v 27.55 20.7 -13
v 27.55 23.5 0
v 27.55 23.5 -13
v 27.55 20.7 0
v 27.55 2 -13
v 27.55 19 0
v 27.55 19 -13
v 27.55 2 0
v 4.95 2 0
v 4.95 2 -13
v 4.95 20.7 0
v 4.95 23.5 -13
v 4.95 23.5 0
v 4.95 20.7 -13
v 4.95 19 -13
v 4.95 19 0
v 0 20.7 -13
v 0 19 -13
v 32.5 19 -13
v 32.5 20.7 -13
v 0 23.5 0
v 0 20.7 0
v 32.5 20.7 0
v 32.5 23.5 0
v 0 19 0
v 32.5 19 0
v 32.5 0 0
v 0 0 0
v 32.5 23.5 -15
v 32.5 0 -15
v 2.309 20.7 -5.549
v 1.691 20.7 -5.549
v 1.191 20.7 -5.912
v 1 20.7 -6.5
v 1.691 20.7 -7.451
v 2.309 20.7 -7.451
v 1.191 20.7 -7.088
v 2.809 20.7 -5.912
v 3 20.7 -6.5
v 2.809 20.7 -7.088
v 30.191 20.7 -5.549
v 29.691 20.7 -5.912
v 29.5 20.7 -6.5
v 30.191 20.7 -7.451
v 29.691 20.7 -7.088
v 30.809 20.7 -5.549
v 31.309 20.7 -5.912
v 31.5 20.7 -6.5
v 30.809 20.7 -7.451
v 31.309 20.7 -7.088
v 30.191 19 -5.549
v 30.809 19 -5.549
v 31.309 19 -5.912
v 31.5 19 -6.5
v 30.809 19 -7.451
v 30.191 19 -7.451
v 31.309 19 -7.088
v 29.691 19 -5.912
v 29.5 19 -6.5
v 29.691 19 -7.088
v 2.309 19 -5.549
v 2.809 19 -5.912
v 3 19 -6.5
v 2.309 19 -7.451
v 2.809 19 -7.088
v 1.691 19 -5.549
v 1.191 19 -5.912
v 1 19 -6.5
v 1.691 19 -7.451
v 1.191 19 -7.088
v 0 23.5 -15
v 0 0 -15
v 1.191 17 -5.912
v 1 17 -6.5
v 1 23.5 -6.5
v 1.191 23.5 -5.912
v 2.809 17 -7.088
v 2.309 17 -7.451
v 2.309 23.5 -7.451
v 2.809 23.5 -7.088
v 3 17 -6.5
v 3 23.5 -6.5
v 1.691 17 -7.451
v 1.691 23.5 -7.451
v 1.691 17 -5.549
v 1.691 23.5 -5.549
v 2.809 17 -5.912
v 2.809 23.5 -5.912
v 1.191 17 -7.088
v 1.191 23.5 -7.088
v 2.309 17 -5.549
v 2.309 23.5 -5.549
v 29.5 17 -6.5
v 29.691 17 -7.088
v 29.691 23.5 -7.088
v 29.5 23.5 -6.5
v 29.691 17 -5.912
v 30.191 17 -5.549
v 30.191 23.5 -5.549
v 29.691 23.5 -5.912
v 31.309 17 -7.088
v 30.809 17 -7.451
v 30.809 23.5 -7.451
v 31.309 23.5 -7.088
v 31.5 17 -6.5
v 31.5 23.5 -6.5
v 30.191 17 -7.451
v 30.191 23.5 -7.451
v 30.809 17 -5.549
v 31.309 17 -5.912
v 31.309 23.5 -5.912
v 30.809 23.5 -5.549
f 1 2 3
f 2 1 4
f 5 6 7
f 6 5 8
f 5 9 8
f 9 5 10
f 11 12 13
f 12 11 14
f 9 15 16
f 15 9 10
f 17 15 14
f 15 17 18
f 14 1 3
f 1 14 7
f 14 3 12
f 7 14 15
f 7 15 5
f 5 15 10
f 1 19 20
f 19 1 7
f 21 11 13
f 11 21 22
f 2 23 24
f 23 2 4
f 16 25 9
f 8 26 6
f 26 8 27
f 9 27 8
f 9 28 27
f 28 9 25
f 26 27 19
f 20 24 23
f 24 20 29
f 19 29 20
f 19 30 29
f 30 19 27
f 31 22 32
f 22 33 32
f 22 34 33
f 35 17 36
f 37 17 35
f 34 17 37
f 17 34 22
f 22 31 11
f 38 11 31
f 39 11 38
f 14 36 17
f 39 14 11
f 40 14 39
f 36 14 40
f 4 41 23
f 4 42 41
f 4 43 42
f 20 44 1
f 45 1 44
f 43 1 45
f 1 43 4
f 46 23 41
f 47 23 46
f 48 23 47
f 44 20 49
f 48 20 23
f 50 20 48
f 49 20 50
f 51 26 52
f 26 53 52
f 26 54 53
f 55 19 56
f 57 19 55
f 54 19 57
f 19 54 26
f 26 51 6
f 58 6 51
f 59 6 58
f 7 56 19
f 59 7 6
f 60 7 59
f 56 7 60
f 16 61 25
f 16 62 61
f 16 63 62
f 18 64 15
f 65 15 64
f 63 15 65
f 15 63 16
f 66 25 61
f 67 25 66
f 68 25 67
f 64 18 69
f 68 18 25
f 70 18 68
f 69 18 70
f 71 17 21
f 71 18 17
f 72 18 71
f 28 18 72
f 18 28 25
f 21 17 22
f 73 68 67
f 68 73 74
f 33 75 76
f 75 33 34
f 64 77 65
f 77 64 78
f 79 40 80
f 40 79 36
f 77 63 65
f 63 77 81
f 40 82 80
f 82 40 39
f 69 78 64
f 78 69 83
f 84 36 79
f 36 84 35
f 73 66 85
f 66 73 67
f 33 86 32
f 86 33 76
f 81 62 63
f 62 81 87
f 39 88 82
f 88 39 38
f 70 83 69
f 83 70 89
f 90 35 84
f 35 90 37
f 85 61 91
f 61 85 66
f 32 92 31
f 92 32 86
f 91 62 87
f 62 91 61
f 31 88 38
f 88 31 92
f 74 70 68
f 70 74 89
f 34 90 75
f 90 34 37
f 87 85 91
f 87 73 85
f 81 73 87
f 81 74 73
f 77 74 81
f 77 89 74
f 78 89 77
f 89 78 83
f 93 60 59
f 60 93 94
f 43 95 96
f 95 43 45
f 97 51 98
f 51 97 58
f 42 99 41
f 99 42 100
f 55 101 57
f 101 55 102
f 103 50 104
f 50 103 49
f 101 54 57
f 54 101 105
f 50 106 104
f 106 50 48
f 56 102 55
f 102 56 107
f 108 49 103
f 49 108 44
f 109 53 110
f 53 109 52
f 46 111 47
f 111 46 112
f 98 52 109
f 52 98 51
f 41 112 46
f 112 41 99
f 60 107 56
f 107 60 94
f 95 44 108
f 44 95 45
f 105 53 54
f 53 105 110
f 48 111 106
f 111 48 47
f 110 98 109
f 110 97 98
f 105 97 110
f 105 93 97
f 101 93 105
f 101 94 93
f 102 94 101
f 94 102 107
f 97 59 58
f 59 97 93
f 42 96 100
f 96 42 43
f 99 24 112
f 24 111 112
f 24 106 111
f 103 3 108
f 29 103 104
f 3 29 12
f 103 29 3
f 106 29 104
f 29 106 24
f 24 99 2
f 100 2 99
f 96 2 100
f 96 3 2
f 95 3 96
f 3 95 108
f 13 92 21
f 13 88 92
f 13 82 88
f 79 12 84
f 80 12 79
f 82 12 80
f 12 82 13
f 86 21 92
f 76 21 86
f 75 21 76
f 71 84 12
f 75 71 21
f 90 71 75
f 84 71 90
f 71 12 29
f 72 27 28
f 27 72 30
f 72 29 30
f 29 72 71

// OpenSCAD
// file: ../lib/utils.scad
module rounded_square(d,r,center=false){
	if (center) {
		minkowski(){
			square([d[0]-2*r,d[1]-2*r], center=center);
			circle(r=r);
		}
	} else {
		translate([r,r])minkowski(){
			square([d[0]-2*r,d[1]-2*r], center=center);
			circle(r=r);
		}
	}
}

module mirror_copy(v = [0, 1, 0]) {
	children();
	mirror(v)children();
}

module rotate_copy(r) {
	children();
	rotate(r)children();
}
// main file
servo_x = 22.6;
servo_y = 13;
servo_z = 23.5;
servo_mount_x = 32.5;
servo_mount_z = 1.7;
servo_mount_y = servo_y;
servo_mount_clearance = 17;
servo_arm_x = 10;
servo_arm_y = servo_y/2;
servo_arm_z = 5;
servo_arm_diameter = 6;
servo_arm_thickness = 2;
servo_arm_length = 19;
mounting_hole_offset_x = 2;
mounting_hole_diameter = 2;
wall_thickness = 2;
use <../lib/utils.scad>;
$fn = 10;
module servo_9g_arm() {
	color("white")rotate([0, 0, 90])union() {
	cylinder(d=servo_arm_diameter, h=servo_arm_z);
	translate([servo_arm_length/2-2.9, 0, servo_arm_z-servo_arm_thickness])
	linear_extrude(servo_arm_thickness)
		rounded_square([servo_arm_length, servo_arm_diameter], 2.9, center=true);
	}
}

module servo_9g() {
	color("gray"){
	translate([(servo_mount_x-servo_x)/2, 0, 0])cube([servo_x, servo_y, servo_z]);
	translate([0, 0, servo_mount_clearance])cube([servo_mount_x, servo_mount_y, servo_mount_z]);
	}
	translate([servo_arm_x, servo_arm_y, servo_z])servo_9g_arm();
}
rotate([-90, 0, 0])
difference() {
cube([servo_mount_x, servo_y+wall_thickness, servo_z]);
translate([0, 0, wall_thickness]) servo_9g();
translate([mounting_hole_offset_x, servo_y/2, servo_mount_clearance]){
	cylinder(d=mounting_hole_diameter, h=10, center=false);
	translate([servo_mount_x-2*mounting_hole_offset_x, 0, 0])
	cylinder(d=mounting_hole_diameter, h=10, center=false);
}
}
